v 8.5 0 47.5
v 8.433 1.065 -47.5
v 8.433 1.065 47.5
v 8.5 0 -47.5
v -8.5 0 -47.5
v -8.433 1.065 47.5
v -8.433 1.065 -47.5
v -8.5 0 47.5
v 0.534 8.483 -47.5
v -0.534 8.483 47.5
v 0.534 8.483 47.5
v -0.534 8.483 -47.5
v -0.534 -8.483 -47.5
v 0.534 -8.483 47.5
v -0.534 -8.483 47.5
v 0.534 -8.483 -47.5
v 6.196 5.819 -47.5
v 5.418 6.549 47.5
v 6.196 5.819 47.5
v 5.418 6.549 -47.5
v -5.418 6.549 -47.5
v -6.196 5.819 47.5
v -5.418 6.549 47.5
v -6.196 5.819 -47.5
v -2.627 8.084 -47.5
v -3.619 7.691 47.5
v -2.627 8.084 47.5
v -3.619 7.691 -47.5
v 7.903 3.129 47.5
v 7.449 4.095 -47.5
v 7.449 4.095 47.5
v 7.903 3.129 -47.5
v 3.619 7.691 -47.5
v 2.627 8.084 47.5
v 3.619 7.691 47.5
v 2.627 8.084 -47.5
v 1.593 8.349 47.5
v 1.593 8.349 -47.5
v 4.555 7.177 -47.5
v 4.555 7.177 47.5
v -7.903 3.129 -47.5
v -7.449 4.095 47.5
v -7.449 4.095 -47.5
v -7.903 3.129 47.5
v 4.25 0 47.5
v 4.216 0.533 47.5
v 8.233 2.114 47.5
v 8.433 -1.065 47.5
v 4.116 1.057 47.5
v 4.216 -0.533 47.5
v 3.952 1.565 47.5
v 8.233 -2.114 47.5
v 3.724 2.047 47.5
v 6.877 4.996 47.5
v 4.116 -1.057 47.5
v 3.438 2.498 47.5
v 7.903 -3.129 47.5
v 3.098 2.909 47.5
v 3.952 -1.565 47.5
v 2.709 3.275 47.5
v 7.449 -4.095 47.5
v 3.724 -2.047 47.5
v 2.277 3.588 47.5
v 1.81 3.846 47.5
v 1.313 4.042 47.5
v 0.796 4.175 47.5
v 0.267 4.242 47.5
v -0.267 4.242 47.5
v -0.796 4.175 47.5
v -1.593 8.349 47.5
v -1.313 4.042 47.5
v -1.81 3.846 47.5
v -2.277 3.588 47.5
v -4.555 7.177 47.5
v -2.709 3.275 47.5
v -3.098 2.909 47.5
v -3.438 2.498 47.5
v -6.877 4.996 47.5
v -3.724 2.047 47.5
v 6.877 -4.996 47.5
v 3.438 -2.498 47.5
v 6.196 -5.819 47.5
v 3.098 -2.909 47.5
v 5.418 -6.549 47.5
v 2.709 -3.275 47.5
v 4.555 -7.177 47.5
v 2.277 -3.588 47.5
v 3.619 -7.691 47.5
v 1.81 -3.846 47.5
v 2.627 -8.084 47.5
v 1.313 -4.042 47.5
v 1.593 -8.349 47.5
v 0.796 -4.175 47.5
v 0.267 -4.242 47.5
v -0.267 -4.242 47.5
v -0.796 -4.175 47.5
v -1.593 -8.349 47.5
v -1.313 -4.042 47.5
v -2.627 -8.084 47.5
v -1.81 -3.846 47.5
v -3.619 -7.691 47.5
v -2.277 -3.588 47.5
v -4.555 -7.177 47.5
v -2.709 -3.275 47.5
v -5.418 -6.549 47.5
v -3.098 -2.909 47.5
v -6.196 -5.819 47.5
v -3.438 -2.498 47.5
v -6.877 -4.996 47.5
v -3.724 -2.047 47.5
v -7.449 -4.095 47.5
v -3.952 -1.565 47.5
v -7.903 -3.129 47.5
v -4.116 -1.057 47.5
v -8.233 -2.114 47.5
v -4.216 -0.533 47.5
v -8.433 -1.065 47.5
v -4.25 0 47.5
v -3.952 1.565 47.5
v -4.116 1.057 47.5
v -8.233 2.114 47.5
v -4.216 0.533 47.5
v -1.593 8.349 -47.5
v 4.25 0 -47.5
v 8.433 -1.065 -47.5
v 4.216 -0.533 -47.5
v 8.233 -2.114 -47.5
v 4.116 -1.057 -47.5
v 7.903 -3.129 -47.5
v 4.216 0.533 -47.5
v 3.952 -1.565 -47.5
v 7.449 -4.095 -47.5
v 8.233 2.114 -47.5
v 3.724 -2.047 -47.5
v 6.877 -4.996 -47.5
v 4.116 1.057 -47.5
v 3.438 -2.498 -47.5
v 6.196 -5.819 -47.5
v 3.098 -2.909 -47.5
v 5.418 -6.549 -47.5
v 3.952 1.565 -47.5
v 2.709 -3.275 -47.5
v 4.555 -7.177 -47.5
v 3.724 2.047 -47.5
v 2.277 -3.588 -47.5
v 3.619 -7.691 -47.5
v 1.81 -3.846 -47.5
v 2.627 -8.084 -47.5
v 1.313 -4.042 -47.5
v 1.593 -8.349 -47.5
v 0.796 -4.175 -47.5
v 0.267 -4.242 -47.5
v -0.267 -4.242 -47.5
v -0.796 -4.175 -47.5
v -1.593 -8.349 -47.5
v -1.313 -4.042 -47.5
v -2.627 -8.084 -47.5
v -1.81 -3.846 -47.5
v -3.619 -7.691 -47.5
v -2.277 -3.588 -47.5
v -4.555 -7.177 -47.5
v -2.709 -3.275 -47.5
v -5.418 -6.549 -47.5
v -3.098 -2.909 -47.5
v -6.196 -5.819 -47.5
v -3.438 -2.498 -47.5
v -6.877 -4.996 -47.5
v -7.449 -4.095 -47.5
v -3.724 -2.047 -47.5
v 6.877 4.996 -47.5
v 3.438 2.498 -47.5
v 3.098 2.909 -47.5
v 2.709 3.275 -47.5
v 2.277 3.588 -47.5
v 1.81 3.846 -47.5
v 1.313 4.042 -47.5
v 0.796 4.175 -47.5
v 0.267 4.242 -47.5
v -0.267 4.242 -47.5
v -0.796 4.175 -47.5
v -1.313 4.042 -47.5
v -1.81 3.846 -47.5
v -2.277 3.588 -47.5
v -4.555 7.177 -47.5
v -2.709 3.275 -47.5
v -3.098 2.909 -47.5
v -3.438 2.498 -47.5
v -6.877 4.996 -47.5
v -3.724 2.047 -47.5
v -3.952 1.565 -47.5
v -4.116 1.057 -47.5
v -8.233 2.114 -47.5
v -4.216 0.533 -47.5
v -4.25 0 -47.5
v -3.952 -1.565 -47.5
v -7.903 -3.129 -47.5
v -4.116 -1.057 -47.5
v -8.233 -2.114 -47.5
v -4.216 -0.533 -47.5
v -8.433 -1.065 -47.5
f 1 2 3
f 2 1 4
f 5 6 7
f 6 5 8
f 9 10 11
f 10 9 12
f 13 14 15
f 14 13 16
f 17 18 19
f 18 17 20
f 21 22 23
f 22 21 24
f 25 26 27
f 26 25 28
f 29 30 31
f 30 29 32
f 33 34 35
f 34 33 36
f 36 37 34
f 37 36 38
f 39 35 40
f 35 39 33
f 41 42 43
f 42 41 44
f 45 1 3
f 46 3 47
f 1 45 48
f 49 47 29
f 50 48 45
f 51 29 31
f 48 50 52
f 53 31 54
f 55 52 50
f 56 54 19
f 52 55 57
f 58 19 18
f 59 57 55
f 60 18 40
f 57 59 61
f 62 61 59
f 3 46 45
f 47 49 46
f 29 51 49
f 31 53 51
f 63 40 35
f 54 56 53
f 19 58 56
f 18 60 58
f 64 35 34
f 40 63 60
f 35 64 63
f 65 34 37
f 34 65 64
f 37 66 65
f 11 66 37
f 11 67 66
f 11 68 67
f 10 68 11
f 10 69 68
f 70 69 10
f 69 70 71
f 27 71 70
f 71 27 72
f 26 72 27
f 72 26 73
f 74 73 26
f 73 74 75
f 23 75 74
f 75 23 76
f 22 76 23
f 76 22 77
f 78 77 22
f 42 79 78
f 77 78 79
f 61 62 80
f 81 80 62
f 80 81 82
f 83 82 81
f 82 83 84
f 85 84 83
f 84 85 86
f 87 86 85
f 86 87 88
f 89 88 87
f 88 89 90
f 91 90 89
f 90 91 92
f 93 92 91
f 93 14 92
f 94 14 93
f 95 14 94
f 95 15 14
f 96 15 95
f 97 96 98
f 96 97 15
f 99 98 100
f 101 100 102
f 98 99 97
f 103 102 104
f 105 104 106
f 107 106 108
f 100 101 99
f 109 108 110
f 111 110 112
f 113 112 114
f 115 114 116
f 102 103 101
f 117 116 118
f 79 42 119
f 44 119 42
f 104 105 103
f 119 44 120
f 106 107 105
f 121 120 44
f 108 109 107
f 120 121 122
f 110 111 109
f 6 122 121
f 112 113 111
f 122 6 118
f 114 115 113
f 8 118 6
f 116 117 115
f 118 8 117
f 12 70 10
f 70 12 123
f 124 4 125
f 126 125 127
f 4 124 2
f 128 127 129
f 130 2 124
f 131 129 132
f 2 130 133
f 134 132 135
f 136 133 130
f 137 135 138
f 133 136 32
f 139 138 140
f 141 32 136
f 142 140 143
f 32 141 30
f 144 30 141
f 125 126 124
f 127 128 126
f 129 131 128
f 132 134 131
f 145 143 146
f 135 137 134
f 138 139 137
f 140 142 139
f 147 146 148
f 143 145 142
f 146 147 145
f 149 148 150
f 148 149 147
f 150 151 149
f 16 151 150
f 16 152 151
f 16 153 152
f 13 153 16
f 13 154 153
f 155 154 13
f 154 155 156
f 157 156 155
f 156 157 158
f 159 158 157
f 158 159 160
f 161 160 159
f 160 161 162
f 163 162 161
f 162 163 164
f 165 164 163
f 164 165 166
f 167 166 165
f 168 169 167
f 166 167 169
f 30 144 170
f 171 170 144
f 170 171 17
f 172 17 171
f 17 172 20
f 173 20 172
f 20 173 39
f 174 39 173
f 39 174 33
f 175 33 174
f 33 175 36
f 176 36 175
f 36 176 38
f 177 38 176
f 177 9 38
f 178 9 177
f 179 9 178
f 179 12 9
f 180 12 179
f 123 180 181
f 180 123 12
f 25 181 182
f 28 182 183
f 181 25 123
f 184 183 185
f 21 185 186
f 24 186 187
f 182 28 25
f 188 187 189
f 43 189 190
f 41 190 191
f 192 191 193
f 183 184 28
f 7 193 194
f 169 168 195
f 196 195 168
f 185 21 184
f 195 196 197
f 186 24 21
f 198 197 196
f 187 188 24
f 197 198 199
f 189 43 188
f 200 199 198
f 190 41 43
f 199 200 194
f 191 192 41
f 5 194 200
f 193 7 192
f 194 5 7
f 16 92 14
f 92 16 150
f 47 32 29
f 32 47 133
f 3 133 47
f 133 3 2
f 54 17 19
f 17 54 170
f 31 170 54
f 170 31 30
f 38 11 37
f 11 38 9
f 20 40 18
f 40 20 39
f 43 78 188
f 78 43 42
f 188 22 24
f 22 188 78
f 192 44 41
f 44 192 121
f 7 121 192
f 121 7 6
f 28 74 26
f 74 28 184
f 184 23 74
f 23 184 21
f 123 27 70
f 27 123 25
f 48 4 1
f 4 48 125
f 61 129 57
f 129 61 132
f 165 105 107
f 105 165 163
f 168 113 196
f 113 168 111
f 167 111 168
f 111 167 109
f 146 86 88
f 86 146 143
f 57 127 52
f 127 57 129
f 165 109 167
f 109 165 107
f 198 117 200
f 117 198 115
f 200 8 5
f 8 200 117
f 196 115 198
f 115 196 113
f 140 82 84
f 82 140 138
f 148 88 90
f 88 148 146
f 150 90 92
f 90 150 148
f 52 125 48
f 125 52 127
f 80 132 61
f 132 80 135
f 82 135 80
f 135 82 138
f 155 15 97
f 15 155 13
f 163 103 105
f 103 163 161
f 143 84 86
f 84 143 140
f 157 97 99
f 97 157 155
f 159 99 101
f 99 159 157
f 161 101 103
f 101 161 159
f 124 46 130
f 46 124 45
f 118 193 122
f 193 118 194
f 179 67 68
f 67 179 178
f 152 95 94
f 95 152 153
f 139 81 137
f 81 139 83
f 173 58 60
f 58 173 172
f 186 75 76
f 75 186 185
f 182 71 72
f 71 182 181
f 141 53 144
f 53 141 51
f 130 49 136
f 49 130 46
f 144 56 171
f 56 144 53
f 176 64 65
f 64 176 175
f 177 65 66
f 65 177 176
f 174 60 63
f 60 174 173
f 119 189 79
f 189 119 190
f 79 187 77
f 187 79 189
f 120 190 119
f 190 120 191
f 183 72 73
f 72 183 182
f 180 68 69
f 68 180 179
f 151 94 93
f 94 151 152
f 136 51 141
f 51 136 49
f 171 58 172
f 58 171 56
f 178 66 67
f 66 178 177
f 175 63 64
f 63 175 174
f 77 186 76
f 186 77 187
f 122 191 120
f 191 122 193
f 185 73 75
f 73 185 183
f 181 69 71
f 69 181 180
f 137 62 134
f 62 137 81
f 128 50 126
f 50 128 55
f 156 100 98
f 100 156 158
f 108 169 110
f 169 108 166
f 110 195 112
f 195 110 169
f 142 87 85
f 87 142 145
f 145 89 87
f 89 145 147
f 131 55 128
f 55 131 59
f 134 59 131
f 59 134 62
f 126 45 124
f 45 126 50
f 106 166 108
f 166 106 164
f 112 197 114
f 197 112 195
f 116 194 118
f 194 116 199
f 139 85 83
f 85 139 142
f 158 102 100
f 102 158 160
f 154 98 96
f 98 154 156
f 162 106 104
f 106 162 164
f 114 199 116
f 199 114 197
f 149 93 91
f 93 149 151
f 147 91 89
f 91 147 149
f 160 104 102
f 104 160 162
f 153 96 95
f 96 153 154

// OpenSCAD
$fn = 50;


difference() {
	union() {
		translate(v = [0, 0, -47.5000000000]) {
			cylinder(h = 95, r = 8.5000000000);
		}
	}
	union() {
		translate(v = [0, 0, -100.0000000000]) {
			cylinder(h = 200, r = 4.2500000000);
		}
	}
}
